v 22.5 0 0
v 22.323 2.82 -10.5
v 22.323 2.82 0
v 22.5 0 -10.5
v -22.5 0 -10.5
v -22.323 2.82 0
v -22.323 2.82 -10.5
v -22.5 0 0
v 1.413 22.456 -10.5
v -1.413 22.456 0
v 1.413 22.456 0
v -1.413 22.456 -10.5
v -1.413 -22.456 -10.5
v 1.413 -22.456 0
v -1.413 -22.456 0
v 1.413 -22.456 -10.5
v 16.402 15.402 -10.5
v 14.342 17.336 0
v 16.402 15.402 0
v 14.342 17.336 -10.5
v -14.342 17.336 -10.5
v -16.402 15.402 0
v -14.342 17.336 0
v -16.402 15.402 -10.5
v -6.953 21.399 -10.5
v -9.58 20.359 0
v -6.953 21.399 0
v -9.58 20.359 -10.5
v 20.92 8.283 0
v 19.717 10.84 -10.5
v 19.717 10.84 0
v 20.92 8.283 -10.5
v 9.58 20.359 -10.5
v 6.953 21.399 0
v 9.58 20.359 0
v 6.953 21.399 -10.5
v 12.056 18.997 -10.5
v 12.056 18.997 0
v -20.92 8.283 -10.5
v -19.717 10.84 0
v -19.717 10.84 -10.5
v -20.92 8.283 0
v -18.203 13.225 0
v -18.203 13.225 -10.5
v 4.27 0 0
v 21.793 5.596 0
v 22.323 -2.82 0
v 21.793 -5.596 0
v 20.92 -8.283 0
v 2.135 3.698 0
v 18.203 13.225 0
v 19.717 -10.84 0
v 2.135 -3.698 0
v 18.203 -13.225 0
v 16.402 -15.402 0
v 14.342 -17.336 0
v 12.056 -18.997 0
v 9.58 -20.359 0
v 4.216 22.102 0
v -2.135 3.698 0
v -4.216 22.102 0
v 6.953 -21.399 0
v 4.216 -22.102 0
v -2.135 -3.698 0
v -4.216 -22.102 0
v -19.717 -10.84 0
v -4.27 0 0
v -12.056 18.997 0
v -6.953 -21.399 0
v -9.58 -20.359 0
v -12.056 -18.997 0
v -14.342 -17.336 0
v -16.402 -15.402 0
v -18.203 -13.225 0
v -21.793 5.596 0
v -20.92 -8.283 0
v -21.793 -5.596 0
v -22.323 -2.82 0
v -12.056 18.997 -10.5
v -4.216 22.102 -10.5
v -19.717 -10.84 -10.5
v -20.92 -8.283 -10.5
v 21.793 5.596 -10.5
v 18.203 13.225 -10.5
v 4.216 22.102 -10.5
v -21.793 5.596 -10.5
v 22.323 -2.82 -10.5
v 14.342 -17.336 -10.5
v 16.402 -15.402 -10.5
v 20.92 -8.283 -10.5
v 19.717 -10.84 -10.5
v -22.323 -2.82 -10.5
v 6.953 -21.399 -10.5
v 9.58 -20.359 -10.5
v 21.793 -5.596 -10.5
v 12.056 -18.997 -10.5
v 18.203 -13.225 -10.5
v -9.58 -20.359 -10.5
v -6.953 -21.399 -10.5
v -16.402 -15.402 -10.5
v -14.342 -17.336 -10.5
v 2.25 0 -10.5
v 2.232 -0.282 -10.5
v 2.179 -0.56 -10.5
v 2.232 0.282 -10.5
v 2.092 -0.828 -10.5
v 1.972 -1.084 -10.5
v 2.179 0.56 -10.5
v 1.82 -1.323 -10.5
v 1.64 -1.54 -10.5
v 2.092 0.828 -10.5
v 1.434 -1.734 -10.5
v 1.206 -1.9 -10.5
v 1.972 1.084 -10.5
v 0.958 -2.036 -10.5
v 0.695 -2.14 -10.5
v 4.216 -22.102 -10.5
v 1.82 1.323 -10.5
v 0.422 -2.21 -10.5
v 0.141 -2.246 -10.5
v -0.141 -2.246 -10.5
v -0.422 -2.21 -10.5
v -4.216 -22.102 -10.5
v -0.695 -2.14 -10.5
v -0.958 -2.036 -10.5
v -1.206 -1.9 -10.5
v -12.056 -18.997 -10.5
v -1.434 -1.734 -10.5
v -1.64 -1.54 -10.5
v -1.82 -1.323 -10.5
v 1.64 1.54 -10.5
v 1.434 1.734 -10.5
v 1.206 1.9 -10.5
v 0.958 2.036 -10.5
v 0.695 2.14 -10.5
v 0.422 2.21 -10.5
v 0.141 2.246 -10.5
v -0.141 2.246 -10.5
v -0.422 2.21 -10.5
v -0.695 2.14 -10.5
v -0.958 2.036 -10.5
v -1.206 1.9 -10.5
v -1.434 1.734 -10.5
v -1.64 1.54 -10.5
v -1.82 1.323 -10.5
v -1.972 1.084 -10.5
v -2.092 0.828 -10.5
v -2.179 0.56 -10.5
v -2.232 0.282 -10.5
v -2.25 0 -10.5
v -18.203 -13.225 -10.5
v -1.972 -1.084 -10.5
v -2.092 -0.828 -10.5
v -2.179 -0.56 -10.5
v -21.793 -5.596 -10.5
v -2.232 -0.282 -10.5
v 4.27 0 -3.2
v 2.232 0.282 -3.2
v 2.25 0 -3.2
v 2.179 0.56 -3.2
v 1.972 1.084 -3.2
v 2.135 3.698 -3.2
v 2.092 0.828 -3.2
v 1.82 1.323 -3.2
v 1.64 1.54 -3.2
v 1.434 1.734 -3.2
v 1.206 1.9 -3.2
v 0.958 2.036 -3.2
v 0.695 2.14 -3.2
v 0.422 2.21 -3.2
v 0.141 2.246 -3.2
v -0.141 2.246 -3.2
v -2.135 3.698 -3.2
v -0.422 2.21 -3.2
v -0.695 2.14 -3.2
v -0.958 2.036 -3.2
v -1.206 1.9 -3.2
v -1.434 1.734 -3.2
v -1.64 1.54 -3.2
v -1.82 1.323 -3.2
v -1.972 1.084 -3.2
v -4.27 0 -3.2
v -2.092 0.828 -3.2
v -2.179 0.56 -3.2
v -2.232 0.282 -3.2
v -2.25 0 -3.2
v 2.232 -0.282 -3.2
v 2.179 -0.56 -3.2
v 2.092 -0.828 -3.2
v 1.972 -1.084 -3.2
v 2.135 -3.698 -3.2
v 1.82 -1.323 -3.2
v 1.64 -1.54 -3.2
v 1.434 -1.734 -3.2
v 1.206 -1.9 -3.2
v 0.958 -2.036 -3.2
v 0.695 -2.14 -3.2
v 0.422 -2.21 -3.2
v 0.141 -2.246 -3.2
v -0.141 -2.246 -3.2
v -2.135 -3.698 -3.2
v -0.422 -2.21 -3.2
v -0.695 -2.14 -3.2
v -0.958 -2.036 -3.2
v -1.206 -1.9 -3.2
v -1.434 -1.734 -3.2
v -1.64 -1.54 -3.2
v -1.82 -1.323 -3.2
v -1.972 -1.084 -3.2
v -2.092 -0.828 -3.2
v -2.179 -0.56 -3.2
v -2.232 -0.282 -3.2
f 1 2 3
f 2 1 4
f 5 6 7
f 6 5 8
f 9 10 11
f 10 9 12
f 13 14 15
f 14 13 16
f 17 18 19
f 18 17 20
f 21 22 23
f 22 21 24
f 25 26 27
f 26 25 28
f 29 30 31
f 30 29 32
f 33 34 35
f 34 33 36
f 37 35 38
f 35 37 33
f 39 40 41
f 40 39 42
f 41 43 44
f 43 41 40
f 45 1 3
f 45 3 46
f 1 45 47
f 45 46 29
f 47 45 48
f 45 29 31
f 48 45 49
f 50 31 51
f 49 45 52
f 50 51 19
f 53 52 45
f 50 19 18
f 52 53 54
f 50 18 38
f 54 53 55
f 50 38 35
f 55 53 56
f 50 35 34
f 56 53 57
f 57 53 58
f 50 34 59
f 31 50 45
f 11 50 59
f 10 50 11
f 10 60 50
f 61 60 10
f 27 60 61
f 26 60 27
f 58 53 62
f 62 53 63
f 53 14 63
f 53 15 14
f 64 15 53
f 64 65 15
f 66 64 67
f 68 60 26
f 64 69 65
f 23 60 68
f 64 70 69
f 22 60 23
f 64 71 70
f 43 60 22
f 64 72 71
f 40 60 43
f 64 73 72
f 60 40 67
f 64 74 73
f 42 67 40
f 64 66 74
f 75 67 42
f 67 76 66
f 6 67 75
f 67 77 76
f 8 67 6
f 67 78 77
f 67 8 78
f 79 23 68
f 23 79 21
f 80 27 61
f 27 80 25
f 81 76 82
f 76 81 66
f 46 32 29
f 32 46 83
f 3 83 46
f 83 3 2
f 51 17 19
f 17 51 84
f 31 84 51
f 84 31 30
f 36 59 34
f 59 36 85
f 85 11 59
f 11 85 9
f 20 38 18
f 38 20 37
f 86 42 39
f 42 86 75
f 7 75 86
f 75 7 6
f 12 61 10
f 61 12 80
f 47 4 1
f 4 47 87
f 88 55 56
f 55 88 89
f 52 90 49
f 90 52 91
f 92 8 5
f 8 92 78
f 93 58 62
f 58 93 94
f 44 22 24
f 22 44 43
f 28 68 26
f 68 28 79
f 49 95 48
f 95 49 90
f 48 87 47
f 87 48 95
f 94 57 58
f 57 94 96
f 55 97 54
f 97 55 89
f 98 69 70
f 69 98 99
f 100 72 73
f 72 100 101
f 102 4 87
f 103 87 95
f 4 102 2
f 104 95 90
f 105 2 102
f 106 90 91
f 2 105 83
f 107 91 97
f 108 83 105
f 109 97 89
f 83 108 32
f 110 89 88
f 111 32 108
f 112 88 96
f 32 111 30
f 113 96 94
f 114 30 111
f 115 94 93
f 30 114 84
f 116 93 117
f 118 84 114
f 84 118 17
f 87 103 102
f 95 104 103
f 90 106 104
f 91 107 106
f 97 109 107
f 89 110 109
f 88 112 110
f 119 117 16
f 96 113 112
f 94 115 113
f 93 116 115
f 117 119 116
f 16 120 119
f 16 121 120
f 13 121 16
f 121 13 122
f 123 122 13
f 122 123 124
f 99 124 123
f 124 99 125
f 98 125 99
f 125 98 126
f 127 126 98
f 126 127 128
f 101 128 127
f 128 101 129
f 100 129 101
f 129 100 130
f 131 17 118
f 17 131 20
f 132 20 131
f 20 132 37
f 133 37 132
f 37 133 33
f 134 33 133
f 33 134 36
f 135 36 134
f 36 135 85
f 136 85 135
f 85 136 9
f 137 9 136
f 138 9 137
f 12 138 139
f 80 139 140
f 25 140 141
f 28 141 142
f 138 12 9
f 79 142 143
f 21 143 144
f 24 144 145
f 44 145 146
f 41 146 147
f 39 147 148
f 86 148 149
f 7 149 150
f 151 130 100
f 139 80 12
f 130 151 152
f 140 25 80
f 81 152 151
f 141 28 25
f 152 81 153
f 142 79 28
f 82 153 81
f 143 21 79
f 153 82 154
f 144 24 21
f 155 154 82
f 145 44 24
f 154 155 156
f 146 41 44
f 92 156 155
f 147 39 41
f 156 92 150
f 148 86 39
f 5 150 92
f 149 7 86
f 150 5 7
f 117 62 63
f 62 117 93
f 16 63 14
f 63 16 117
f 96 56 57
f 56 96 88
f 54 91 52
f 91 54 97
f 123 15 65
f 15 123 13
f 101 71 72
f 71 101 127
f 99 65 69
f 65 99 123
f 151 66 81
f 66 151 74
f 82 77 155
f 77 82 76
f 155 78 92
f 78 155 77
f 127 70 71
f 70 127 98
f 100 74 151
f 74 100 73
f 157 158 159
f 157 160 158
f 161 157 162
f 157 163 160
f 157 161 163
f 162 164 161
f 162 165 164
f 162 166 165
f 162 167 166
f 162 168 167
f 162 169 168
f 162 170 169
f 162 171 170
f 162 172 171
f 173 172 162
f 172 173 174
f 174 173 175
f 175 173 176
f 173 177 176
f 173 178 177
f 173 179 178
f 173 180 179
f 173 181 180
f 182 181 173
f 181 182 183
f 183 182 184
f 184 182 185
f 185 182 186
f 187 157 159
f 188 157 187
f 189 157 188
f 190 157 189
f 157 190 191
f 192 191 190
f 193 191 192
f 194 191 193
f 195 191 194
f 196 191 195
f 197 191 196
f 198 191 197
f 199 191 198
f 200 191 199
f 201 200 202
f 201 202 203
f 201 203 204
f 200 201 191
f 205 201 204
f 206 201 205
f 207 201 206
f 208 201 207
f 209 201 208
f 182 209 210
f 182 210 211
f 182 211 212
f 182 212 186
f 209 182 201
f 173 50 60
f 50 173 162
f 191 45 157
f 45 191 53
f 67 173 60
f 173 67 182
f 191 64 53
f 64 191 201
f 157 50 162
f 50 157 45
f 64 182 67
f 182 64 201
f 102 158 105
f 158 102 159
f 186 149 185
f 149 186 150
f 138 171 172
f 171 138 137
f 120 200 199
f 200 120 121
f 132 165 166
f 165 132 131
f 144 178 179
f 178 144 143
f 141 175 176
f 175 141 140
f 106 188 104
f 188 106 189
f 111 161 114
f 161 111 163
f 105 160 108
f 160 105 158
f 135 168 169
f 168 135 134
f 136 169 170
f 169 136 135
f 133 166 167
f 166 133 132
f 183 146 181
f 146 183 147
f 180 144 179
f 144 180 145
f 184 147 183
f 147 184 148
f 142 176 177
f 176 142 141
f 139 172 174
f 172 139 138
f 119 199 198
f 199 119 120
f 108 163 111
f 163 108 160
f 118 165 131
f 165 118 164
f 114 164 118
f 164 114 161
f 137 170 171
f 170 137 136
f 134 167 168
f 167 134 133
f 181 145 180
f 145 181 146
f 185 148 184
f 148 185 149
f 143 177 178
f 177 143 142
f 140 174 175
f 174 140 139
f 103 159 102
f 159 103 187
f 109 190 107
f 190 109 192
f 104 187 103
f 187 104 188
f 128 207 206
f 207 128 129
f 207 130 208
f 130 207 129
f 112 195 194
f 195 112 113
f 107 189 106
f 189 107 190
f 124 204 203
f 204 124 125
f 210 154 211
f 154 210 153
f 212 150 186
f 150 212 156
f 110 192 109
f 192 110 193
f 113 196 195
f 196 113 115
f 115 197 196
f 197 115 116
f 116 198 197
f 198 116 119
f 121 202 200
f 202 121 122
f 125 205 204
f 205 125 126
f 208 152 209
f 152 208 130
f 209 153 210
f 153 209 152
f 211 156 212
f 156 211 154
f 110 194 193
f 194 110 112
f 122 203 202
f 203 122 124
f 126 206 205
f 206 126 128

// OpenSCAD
$fn = 50;


difference() {
	union() {
		translate(v = [0, 0, -10.5000000000]) {
			cylinder(h = 10.5000000000, r = 22.5000000000);
		}
		translate(v = [0, 0, -9.0000000000]) {
			cylinder(h = 9, r = 2.8750000000);
		}
	}
	union() {
		translate(v = [0, 0, 0]) {
			rotate(a = [0, 0, 0]) {
				difference() {
					union() {
						translate(v = [0, 0, -3.2000000000]) {
							#linear_extrude(height = 3.2000000000) {
								polygon(points = [[4.2698000000, 0.0000000000], [2.1349000000, 3.6977552691], [-2.1349000000, 3.6977552691], [-4.2698000000, 0.0000000000], [-2.1349000000, -3.6977552691], [2.1349000000, -3.6977552691]]);
							}
						}
					}
					union();
				}
			}
		}
		#translate(v = [0, 0, -100.0000000000]) {
			cylinder(h = 200, r = 2.2500000000);
		}
	}
}
